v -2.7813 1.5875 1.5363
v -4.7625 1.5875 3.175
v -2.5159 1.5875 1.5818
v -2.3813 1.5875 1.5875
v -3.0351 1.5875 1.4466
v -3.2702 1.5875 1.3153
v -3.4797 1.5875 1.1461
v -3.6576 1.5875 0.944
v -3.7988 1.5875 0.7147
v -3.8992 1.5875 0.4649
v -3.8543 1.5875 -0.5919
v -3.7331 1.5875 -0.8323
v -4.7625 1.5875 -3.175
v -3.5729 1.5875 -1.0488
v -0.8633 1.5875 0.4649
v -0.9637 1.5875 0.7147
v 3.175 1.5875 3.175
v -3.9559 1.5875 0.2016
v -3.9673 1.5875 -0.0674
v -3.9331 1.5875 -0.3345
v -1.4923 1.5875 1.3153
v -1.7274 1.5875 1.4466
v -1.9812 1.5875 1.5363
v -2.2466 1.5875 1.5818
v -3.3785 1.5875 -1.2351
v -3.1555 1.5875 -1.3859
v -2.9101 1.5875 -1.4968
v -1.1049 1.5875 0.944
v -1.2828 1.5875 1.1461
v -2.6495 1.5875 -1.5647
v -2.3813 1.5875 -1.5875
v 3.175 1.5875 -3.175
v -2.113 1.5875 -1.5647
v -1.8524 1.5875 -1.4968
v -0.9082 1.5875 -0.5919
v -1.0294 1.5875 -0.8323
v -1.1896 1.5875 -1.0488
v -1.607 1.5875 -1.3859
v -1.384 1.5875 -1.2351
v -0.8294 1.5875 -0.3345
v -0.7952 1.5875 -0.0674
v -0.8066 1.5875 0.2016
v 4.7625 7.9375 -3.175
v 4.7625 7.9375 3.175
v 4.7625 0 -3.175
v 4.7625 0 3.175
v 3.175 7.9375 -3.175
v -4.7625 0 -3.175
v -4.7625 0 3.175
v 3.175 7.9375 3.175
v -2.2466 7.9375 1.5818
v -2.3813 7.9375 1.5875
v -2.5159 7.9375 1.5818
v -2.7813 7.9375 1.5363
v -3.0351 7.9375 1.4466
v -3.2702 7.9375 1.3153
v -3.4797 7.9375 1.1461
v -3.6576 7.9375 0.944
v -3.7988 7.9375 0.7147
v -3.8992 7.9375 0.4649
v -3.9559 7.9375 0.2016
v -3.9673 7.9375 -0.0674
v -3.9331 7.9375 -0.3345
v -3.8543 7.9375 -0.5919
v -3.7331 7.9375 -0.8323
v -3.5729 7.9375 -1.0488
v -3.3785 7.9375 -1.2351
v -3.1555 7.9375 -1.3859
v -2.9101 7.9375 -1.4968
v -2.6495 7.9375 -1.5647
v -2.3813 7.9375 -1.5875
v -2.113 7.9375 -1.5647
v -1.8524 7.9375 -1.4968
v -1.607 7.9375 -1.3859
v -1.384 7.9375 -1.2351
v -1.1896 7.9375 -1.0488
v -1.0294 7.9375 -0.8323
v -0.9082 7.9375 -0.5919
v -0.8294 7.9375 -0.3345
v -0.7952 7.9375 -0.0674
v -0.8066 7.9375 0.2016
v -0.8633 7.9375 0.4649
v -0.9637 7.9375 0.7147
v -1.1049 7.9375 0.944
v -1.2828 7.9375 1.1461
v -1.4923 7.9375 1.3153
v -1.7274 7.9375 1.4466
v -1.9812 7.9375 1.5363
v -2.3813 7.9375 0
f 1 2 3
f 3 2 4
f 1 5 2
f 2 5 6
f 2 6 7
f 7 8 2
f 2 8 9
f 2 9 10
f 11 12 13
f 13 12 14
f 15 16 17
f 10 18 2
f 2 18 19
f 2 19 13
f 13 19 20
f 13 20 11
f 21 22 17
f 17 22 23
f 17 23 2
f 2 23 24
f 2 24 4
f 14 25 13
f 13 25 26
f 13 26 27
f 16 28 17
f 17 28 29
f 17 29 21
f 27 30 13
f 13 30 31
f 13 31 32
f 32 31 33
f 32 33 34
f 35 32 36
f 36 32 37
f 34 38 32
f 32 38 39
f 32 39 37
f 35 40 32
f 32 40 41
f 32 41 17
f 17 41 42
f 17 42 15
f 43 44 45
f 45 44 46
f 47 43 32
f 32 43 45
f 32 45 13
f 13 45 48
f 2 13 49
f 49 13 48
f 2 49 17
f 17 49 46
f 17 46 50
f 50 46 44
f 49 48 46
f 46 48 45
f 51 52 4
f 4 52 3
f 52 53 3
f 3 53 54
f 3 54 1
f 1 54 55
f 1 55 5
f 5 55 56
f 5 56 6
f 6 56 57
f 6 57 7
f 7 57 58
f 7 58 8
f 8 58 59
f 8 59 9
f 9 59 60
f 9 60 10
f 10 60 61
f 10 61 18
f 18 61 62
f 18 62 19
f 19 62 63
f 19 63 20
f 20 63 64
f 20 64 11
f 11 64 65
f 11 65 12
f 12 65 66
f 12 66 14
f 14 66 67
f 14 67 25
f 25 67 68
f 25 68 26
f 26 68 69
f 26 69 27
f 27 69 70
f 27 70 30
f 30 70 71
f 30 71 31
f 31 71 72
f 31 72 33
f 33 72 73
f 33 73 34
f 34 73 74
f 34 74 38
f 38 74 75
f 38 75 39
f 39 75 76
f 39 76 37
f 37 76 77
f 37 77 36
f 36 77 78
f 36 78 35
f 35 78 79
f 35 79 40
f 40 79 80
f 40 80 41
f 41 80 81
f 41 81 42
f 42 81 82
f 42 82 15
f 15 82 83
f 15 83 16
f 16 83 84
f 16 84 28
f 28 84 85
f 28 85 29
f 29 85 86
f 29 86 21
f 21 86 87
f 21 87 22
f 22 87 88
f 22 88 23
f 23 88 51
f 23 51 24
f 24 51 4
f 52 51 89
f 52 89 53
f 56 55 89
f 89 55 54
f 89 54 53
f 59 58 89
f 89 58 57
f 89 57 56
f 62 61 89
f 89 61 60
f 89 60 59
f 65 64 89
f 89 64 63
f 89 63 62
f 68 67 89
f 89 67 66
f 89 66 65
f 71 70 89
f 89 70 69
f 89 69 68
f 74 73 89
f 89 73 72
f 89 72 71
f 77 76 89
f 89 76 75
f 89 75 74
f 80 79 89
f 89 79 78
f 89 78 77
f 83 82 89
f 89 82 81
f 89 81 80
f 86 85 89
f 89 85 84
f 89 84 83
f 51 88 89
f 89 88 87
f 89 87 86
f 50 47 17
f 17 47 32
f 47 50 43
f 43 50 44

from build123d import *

# Parameters (mm, degrees)
SKETCH1_W           = 9.525
SKETCH1_H           = 6.35
BOSS_EXTRUDE1_DEPTH = 1.5875
SKETCH2_R           = 1.5875
SKETCH2_W           = 1.5875
SKETCH2_H           = 6.35
BOSS_EXTRUDE2_DEPTH = 6.35


with BuildPart() as part:
    # Sketch1 → Boss-Extrude1 (new body)
    with BuildSketch(Plane(origin=(0, 0, 0), x_dir=(1, 0, 0), z_dir=(0, 1, 0))):
        Rectangle(SKETCH1_W, SKETCH1_H)
    extrude(amount=BOSS_EXTRUDE1_DEPTH)

    # Sketch2 → Boss-Extrude2 (add)
    with BuildSketch(Plane(origin=(0, 1.5875, 0), x_dir=(1, 0, 0), z_dir=(0, 1, 0))):
        with Locations((-2.38125, 0)):
            Circle(SKETCH2_R)
        with Locations((3.96875, 0)):
            Rectangle(SKETCH2_W, SKETCH2_H)
    extrude(amount=BOSS_EXTRUDE2_DEPTH)


solid = part.part
